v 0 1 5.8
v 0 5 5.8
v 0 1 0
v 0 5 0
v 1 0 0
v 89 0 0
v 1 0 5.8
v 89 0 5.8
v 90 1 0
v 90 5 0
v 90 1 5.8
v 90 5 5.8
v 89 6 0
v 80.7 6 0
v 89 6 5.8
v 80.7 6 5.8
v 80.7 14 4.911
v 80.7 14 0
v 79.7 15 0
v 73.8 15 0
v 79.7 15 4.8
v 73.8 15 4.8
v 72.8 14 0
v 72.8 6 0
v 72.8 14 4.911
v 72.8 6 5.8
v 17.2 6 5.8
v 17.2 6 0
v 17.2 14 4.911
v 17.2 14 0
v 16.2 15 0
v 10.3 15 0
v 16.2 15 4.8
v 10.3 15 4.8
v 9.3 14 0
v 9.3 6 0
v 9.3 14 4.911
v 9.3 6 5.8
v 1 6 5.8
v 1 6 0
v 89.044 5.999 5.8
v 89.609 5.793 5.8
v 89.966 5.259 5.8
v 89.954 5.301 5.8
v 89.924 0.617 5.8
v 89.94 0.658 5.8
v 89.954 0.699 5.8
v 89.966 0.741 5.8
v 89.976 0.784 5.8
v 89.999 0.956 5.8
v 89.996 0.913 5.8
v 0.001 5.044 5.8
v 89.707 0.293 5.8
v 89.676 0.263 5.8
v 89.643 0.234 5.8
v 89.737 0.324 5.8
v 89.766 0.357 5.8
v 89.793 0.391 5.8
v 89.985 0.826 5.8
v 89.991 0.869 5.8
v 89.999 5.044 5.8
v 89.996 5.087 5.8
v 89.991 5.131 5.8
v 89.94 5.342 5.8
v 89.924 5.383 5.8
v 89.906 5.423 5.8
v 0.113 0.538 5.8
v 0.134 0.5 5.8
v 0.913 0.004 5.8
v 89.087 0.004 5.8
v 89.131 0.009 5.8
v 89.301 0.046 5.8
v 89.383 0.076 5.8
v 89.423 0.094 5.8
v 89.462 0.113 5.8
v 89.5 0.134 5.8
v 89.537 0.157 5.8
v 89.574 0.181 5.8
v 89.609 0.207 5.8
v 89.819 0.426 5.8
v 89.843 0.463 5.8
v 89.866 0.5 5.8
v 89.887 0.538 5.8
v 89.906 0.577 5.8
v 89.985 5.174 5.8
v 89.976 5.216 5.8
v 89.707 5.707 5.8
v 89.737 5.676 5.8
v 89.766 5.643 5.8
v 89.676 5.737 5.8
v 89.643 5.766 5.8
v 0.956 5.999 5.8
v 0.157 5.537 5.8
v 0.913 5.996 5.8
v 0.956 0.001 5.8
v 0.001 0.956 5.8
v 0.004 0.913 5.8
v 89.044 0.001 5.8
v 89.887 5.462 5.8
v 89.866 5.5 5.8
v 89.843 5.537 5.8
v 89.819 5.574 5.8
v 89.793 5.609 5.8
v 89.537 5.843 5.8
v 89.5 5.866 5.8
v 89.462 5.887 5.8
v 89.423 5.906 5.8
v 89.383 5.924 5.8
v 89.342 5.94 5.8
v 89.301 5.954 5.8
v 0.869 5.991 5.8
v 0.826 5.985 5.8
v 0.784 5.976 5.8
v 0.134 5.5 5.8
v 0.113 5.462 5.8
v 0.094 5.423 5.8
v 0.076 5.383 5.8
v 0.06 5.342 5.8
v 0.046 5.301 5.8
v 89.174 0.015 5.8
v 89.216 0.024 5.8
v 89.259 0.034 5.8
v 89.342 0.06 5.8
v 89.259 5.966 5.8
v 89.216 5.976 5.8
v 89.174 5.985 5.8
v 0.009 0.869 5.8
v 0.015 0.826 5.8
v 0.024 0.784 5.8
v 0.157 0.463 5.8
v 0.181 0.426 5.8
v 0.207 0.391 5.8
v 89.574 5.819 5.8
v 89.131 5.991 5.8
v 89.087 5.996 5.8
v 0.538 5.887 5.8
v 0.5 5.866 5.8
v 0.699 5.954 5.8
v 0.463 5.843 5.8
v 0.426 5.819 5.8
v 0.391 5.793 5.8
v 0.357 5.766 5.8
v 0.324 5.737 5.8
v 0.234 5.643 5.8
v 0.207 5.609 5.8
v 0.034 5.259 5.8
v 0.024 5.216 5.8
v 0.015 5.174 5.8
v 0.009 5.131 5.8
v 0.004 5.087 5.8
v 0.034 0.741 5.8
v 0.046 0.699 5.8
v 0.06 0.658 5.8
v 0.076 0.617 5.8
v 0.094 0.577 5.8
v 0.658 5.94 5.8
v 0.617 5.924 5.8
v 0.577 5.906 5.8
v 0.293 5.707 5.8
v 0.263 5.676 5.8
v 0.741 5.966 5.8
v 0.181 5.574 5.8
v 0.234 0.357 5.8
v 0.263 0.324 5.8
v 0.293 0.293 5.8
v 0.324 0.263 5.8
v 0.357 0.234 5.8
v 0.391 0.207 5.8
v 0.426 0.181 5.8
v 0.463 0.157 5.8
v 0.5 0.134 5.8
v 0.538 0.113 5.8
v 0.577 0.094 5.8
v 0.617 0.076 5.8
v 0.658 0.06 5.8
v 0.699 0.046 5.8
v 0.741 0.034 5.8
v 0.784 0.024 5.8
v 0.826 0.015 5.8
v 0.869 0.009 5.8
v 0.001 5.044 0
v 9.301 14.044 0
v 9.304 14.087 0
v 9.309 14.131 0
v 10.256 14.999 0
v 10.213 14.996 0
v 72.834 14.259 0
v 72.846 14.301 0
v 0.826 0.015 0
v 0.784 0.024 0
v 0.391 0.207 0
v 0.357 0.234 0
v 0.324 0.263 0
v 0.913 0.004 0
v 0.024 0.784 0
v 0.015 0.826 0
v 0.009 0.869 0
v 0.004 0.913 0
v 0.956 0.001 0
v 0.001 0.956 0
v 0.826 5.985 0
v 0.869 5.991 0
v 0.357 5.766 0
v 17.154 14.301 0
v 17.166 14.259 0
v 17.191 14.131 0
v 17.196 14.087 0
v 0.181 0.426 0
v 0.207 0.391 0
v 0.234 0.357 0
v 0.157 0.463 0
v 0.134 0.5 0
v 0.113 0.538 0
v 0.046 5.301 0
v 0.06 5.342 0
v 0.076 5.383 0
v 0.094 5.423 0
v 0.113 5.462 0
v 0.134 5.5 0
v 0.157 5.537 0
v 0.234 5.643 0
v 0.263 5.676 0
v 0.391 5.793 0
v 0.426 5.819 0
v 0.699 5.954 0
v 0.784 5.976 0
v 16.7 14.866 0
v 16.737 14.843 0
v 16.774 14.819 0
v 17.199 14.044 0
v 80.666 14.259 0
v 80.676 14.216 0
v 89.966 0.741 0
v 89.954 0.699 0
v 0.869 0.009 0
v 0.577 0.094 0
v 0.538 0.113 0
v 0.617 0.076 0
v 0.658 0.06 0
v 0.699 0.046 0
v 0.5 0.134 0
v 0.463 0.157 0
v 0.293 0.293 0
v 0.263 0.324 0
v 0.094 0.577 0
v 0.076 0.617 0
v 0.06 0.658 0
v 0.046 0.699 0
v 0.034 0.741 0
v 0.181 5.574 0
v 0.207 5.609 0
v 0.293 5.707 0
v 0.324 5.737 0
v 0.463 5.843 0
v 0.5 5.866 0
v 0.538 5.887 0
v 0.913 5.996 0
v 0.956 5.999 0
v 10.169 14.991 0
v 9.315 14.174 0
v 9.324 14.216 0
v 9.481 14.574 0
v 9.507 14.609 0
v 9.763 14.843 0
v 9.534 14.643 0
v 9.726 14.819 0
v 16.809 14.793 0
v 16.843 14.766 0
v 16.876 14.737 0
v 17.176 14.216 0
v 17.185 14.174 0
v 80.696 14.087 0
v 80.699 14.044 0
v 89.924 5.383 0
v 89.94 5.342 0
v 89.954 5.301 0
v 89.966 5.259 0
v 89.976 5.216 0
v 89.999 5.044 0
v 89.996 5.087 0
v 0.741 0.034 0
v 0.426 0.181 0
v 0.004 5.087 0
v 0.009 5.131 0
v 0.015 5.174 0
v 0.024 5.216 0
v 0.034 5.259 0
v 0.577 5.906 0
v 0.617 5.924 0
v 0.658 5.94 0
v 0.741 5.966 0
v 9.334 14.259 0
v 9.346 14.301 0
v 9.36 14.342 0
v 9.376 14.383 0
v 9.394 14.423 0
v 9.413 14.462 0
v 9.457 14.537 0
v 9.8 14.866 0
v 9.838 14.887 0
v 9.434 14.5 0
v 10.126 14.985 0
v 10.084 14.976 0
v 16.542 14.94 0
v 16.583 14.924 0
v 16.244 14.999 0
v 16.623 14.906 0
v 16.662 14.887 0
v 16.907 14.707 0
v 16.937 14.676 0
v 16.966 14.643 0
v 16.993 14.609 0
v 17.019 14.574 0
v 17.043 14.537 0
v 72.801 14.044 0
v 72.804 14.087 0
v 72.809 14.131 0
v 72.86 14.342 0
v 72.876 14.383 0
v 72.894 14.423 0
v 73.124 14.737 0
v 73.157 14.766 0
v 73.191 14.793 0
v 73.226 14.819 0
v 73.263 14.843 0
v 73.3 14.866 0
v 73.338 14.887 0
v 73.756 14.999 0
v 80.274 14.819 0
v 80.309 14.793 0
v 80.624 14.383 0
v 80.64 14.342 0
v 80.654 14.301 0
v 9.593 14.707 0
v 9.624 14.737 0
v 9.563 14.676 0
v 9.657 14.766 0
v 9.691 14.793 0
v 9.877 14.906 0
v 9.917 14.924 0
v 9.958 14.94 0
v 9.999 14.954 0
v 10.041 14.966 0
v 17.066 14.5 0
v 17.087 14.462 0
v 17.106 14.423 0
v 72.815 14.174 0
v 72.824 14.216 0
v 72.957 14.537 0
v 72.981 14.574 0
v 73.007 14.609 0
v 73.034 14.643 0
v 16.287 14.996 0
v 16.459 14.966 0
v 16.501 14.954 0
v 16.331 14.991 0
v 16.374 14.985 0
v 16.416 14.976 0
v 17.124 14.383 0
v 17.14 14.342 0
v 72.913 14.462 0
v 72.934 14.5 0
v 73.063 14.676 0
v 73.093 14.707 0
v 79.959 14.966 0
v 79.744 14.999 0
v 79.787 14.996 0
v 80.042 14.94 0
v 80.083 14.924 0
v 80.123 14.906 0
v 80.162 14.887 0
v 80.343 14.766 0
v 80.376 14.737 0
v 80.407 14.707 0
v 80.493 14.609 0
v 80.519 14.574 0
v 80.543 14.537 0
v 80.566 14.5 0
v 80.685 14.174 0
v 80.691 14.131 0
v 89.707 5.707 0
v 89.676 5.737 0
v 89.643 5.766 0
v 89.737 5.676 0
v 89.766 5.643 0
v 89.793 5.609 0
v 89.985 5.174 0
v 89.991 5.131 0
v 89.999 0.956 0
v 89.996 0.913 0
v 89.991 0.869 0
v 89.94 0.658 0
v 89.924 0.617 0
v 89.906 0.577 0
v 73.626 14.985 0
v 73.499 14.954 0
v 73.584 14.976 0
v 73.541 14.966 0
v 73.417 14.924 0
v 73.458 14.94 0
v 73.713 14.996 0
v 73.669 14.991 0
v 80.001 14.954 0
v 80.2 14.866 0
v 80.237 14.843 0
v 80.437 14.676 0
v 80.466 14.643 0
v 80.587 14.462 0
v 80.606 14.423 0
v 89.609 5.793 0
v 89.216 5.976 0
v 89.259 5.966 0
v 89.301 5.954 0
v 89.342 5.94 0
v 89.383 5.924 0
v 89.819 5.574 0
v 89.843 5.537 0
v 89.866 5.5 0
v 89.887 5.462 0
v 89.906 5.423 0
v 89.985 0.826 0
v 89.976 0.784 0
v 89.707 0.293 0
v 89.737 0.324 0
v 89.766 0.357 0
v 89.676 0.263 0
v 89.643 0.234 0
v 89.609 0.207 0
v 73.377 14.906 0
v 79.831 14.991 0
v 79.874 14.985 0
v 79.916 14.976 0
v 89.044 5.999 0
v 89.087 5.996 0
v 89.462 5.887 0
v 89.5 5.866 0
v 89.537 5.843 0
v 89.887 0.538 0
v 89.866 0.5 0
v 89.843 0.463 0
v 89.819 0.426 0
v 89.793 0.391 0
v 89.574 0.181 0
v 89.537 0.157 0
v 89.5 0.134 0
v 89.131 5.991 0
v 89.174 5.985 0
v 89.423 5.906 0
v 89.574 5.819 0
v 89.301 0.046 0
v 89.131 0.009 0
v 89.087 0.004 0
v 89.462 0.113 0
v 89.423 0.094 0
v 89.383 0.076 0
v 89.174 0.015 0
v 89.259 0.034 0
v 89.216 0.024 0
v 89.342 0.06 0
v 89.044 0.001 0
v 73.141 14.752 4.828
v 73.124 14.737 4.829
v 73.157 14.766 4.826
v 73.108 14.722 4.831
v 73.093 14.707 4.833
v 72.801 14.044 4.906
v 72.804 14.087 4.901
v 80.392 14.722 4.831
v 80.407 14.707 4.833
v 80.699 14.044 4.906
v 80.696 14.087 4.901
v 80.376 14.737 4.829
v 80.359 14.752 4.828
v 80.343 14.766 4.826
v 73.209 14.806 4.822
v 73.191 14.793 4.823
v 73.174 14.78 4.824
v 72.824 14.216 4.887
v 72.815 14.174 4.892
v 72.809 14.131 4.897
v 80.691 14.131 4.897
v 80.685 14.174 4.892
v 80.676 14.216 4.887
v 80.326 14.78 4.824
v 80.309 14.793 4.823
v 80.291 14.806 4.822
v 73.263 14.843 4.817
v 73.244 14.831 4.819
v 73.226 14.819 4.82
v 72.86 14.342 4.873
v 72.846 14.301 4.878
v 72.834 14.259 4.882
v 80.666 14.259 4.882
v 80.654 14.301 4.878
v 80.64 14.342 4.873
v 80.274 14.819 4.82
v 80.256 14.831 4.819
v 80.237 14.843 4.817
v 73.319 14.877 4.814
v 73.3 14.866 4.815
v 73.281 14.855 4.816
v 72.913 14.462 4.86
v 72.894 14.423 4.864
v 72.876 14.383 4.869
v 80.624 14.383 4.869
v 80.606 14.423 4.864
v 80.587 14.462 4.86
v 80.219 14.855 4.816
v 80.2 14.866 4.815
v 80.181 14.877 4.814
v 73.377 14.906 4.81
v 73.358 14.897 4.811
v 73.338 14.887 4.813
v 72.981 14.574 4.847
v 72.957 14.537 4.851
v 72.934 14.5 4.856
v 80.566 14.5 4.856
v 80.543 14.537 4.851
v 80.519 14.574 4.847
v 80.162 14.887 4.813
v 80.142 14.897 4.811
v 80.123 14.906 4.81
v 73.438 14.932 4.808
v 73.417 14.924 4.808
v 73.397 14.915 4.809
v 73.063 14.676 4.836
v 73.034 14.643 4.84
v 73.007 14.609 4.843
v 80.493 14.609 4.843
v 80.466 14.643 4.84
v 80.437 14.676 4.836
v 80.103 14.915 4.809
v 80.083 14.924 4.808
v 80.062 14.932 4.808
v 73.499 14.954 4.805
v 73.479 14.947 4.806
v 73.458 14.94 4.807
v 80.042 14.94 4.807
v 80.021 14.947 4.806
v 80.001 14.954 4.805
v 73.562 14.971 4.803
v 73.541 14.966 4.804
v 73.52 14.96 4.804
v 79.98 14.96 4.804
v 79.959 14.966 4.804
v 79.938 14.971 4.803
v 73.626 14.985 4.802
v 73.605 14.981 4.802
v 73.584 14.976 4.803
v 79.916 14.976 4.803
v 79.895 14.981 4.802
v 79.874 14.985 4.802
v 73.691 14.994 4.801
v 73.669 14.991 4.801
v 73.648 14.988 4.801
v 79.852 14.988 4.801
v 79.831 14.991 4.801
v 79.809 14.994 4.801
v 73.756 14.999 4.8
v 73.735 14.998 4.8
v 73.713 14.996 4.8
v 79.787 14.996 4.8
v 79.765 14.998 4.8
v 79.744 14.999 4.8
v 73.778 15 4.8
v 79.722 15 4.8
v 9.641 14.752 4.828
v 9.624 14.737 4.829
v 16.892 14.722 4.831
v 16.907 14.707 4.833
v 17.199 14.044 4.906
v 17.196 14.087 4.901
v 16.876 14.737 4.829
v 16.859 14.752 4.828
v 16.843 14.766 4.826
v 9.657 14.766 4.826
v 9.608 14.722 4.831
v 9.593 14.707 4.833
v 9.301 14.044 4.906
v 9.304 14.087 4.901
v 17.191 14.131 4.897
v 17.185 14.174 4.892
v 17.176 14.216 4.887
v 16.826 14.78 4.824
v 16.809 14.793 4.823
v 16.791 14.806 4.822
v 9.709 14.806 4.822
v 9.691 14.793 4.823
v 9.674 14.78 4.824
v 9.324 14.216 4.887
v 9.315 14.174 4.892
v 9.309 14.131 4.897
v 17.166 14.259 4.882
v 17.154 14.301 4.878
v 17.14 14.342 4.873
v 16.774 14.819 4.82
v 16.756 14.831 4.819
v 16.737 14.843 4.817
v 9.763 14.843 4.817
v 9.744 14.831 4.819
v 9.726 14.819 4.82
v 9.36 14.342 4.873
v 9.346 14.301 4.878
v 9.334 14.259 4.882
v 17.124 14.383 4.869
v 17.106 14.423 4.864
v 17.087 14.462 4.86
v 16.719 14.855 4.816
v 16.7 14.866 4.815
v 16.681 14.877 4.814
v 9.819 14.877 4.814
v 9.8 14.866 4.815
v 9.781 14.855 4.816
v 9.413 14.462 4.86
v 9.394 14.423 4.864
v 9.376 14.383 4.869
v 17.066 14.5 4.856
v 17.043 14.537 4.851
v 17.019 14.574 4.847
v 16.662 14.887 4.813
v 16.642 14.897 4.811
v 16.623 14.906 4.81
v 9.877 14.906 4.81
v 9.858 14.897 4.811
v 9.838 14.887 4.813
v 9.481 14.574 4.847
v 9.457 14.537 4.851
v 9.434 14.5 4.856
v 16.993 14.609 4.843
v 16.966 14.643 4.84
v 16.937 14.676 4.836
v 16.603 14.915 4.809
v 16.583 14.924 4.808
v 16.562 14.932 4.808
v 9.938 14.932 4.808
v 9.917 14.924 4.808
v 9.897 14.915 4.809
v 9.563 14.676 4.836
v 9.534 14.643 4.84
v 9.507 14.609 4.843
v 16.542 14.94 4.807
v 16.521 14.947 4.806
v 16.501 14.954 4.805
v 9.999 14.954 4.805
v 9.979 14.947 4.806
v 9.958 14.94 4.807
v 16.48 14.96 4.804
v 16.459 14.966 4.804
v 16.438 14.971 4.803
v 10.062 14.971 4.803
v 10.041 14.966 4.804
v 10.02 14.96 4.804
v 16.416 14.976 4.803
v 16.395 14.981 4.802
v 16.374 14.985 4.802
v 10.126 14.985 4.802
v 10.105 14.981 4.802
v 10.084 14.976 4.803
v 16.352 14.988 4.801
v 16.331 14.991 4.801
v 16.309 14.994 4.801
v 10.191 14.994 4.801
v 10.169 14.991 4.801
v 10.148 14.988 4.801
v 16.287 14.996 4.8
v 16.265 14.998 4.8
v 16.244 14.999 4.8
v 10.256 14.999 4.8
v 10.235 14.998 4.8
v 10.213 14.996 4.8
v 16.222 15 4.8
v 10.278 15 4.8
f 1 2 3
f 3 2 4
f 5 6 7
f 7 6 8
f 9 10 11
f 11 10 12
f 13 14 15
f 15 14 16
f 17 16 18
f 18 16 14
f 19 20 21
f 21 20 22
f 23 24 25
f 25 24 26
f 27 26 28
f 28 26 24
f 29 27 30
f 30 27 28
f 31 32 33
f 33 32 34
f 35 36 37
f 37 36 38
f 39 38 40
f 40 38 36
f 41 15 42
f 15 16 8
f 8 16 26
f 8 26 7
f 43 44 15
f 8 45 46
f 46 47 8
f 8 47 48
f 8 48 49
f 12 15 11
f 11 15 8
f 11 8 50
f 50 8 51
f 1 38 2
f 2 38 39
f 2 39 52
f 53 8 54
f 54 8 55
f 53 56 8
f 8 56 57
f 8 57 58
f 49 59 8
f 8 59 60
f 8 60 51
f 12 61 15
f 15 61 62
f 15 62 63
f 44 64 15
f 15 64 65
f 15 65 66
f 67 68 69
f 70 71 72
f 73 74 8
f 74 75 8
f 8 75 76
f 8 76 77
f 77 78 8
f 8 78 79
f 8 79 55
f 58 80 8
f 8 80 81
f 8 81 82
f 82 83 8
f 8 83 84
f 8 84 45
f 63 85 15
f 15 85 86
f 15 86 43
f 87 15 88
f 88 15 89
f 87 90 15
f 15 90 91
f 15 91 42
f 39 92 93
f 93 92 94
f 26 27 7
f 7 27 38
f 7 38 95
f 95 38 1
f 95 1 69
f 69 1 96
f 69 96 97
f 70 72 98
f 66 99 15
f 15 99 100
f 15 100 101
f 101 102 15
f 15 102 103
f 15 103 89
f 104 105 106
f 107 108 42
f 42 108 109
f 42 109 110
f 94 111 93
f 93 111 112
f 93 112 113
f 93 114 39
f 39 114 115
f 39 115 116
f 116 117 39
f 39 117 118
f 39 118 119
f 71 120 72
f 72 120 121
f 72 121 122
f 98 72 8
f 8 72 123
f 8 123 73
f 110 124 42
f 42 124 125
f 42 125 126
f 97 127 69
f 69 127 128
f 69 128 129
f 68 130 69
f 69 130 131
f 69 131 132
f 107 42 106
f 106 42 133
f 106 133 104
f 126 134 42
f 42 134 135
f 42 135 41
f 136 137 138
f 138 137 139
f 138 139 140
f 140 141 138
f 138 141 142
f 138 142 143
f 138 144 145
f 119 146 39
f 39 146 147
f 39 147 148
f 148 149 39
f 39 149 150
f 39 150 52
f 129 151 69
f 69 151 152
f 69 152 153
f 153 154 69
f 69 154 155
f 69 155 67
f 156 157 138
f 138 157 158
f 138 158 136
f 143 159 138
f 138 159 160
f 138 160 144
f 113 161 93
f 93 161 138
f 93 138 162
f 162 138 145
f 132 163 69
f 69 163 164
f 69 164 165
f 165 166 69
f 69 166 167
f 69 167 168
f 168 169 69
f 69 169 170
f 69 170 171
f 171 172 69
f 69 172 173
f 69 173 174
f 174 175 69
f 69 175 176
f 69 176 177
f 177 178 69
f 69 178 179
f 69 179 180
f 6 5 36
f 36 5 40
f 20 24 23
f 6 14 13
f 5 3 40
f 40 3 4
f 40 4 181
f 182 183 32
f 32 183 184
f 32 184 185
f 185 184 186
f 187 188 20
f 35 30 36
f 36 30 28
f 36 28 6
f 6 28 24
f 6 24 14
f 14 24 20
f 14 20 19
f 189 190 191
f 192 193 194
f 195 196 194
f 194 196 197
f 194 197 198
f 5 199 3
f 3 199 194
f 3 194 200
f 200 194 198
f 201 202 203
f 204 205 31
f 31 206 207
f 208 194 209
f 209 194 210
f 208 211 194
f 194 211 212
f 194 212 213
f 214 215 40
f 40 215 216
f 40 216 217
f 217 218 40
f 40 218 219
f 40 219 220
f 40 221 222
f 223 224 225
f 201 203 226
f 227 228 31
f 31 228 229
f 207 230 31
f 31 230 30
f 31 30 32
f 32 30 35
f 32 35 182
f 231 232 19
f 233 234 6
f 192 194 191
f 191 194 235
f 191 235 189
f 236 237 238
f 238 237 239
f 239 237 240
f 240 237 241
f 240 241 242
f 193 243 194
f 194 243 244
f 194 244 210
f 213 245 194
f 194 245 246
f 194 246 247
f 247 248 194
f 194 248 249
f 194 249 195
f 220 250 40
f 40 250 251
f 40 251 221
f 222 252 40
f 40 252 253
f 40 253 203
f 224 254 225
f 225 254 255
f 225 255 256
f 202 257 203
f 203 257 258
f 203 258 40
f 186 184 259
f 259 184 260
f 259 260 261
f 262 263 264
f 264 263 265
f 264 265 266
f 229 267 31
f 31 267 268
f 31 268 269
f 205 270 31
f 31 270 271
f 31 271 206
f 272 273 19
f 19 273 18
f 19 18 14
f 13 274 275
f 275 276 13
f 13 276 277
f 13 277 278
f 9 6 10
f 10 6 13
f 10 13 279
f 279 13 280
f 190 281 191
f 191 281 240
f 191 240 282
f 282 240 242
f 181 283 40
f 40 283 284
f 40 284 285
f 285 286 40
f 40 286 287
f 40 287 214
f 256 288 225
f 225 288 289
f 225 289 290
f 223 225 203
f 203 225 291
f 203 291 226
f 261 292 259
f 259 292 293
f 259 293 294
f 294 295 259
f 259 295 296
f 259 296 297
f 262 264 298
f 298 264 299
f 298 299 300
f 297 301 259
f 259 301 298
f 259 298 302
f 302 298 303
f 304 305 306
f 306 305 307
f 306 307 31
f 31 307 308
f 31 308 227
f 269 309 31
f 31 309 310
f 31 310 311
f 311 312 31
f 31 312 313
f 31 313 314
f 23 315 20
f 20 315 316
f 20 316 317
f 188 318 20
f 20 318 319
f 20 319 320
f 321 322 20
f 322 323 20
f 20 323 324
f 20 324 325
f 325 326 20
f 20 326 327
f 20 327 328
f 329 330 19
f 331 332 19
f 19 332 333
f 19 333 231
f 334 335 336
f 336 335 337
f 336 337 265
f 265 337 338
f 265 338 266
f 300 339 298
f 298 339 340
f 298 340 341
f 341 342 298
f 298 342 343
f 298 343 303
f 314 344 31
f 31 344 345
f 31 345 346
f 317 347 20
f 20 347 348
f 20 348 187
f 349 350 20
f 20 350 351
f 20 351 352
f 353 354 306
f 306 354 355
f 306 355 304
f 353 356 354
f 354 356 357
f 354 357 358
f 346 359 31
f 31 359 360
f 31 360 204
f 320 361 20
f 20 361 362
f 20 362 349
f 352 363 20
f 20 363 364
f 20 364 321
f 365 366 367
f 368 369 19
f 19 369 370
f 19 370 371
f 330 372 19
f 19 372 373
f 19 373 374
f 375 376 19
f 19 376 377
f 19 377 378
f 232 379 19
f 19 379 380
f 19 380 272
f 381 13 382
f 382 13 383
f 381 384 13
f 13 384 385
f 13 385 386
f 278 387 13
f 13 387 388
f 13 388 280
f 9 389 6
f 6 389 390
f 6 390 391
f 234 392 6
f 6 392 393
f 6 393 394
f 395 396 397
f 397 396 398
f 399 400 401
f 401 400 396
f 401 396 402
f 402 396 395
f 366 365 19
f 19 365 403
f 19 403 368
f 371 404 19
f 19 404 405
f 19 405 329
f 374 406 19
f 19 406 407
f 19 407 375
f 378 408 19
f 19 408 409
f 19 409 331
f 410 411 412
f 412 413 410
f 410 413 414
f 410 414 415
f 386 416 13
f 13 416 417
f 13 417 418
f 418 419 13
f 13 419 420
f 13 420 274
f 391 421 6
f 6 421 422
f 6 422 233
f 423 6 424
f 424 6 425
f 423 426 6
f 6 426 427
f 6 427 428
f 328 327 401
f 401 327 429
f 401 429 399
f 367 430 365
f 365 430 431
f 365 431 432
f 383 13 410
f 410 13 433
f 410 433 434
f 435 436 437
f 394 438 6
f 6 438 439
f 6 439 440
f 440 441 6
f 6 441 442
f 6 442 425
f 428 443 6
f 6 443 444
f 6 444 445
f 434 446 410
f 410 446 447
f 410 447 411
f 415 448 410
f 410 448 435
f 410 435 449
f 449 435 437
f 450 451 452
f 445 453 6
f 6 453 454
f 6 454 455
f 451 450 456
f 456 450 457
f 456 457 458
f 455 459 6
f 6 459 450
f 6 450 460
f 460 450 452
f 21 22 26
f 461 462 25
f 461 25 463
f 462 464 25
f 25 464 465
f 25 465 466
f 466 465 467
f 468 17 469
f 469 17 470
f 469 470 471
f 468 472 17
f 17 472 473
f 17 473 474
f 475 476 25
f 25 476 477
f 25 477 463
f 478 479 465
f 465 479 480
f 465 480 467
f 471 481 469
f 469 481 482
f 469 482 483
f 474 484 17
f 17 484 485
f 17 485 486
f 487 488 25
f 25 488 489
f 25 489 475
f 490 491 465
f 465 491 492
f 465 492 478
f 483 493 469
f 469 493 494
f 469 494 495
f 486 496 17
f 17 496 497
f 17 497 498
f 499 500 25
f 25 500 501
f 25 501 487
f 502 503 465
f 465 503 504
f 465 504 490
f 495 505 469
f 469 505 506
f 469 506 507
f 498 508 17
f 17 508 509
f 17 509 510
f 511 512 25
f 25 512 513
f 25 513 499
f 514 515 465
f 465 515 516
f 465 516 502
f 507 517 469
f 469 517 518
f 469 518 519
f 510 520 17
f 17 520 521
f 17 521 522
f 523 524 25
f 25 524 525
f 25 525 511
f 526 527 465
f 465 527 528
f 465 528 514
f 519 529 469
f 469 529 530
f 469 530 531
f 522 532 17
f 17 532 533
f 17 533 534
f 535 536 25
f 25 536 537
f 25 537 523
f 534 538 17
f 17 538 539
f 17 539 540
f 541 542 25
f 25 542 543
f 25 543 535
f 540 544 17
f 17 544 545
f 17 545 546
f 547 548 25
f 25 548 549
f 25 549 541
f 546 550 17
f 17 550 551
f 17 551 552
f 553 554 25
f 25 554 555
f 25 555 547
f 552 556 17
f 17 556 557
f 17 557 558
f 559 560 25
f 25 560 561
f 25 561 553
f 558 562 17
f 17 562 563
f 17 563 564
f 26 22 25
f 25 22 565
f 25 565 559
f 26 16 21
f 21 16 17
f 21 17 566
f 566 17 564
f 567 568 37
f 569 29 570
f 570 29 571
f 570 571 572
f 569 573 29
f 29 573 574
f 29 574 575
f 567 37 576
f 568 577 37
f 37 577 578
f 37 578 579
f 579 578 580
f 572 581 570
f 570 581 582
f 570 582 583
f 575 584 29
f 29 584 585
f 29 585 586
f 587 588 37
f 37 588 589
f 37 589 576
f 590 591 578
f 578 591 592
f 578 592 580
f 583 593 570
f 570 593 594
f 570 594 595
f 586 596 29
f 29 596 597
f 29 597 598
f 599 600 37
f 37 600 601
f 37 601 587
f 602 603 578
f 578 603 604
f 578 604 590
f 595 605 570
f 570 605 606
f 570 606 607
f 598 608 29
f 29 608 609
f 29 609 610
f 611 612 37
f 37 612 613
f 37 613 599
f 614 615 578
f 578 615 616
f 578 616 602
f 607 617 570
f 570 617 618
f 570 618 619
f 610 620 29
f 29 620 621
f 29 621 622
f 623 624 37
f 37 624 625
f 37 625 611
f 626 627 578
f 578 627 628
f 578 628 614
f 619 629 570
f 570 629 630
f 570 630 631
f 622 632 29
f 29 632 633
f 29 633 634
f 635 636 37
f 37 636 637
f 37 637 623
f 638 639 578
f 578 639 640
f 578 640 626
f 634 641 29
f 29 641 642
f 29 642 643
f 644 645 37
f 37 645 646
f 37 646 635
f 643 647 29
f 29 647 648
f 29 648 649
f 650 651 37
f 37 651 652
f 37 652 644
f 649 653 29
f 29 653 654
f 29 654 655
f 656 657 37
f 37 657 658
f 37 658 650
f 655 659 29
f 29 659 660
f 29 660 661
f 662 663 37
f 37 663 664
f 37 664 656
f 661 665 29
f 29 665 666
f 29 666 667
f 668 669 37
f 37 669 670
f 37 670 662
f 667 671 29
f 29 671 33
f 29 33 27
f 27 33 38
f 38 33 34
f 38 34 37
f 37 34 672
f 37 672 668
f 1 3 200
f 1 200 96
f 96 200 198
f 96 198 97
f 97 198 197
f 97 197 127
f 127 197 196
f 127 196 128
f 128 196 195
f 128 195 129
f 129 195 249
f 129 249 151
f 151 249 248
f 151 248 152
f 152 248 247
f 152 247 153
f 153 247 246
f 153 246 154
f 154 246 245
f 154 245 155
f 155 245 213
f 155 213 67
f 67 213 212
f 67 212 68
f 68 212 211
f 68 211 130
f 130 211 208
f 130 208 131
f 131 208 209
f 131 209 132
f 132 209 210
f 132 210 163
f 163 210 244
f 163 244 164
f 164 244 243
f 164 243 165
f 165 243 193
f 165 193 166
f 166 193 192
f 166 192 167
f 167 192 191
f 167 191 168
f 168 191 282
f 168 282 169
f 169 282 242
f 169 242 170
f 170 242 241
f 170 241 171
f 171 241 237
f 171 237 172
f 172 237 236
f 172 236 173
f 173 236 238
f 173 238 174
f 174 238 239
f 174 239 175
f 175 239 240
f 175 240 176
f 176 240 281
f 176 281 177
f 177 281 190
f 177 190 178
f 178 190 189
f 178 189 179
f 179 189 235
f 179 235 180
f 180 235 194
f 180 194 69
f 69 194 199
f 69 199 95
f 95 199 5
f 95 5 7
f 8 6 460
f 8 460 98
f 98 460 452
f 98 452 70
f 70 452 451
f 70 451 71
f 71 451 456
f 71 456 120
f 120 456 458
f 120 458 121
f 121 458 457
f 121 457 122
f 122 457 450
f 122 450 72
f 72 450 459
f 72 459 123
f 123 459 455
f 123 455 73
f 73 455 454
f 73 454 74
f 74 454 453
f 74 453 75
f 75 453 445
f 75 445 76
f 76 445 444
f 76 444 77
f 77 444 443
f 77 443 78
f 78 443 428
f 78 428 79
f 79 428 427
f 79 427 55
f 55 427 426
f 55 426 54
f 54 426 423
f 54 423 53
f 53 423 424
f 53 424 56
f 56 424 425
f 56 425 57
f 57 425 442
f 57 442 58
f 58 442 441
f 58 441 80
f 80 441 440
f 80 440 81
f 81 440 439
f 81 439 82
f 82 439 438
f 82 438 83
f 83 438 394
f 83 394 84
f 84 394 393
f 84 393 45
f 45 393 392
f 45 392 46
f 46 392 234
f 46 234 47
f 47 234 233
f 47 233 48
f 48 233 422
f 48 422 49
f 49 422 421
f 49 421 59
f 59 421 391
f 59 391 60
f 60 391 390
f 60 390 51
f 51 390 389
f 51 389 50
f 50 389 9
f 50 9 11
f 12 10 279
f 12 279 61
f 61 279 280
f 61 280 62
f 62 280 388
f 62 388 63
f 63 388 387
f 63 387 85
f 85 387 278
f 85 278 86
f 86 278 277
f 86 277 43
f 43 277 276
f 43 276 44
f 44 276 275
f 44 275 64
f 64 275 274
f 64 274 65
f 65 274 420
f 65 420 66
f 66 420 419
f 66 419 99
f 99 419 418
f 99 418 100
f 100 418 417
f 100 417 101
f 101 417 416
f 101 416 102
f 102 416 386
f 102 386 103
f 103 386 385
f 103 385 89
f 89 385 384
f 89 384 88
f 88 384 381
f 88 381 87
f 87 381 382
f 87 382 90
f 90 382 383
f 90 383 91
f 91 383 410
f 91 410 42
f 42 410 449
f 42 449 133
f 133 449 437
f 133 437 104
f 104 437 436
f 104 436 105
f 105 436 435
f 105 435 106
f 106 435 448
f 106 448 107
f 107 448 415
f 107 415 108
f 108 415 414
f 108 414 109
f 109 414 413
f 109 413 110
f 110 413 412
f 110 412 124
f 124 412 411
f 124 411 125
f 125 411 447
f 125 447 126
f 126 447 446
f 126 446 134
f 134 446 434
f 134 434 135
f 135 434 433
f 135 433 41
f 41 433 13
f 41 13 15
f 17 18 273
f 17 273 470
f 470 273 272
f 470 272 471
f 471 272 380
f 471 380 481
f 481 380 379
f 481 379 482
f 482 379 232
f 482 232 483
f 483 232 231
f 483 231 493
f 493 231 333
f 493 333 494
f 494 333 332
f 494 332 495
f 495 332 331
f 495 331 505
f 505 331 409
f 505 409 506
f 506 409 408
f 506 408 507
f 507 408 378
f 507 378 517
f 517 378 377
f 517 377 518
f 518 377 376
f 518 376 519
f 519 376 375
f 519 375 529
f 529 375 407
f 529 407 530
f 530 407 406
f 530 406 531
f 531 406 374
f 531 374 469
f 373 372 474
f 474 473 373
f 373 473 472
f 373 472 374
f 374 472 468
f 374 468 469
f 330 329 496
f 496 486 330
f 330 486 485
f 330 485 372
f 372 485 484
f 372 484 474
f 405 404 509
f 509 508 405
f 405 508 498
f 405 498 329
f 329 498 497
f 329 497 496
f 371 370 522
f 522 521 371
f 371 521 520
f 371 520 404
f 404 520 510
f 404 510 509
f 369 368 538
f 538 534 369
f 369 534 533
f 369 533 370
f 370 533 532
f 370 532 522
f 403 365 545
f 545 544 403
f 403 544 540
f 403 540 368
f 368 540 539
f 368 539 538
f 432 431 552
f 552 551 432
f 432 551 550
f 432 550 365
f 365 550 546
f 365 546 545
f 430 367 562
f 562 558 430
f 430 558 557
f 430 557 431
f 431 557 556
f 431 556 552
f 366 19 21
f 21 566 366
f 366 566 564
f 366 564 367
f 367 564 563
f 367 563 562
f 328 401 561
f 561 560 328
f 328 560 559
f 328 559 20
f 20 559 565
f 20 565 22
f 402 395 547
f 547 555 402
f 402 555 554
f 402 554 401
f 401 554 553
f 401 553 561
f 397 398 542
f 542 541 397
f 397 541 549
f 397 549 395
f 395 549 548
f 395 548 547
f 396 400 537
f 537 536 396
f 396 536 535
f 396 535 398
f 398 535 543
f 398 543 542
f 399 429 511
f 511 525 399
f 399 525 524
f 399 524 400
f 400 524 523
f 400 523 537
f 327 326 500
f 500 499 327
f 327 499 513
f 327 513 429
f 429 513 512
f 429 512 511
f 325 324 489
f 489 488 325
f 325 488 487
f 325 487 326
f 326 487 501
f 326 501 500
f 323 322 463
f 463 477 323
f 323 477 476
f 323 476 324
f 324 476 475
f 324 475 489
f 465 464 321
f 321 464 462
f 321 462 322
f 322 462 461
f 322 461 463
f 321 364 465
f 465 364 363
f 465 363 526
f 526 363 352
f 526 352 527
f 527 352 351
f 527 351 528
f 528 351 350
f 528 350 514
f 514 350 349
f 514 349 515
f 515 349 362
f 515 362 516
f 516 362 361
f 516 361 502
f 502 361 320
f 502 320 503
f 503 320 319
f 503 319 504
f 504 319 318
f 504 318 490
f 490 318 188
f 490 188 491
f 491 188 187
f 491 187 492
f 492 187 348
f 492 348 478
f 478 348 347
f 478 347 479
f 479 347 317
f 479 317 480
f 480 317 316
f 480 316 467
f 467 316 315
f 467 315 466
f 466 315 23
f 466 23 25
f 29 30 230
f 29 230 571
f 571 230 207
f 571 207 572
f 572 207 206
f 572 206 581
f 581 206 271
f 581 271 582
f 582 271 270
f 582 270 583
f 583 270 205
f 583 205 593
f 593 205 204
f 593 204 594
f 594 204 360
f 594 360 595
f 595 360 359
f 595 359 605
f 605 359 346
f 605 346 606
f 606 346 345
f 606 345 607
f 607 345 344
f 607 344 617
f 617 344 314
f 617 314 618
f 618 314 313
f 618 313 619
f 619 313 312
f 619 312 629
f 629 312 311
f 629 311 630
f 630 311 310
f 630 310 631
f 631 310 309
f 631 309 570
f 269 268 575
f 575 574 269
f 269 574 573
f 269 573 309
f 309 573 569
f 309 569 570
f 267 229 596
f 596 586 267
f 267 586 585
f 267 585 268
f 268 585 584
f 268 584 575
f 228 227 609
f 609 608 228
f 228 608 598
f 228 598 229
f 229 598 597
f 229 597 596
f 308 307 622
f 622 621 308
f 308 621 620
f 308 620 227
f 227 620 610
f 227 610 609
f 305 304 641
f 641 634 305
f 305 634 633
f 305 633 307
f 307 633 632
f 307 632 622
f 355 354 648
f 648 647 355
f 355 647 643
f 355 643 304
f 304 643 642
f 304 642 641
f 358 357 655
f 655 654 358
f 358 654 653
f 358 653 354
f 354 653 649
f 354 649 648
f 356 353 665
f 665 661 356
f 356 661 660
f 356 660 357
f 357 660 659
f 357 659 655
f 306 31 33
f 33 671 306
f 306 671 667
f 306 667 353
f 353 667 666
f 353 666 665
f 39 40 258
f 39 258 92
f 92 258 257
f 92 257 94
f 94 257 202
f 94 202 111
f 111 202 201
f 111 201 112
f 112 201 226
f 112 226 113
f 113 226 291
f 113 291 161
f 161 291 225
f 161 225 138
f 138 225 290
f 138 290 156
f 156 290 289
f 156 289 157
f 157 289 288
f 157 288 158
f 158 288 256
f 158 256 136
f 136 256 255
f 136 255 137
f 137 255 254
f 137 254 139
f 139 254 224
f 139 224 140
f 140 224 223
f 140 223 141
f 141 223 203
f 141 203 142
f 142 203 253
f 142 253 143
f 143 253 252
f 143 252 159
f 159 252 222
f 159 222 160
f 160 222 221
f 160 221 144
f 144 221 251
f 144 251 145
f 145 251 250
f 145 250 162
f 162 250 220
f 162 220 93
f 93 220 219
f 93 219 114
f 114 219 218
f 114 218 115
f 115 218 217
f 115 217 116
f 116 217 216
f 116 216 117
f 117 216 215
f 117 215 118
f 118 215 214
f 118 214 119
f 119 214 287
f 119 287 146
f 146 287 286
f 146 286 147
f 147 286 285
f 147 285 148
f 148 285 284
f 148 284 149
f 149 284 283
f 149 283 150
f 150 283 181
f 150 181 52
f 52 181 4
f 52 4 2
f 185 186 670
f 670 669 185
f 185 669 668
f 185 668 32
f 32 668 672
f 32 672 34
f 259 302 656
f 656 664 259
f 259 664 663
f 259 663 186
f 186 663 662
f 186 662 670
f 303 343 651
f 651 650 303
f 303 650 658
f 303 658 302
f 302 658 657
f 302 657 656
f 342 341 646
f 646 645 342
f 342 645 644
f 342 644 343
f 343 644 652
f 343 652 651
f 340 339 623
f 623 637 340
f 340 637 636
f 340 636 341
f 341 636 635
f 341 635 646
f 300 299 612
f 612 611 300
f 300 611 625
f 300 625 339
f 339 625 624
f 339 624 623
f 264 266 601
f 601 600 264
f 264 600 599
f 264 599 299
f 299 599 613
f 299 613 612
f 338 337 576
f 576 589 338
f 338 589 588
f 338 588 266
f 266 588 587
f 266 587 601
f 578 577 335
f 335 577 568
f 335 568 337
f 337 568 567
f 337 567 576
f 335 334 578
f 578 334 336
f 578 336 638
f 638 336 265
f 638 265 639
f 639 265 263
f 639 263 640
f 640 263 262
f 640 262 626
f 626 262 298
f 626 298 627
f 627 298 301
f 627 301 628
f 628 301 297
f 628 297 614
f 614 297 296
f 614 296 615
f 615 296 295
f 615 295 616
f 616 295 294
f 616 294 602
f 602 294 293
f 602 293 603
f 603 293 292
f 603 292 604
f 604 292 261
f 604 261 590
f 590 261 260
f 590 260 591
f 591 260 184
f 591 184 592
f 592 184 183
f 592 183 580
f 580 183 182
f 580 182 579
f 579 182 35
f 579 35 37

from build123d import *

# Parameters (mm, degrees)
BOSS_EXTRUDE1_DEPTH = 5.8
CUT_EXTRUDE1_DEPTH  = 83.286876232
FILLET1_R           = 1


with BuildPart() as part:
    # Sketch1 → Boss-Extrude1 (new body)
    with BuildSketch(Plane.XY):
        Polygon((0, 0), (90, 0), (90, 6), (80.7, 6), (80.7, 15), (72.8, 15), (72.8, 6), (17.2, 6), (17.2, 15), (9.3, 15), (9.3, 6), (0, 6), align=None)
    extrude(amount=BOSS_EXTRUDE1_DEPTH)

    # Sketch2 → Cut-Extrude1 (cut, through all)
    with BuildSketch(Plane(origin=(80.7, 0, 0), x_dir=(0, 0, -1), z_dir=(1, 0, 0))):
        Polygon((-5.8, 15), (-5.8, 6), (-4.8, 15), align=None)
    extrude(amount=-CUT_EXTRUDE1_DEPTH, mode=Mode.SUBTRACT)

    # Fillet1
    fillet1_edges = [part.edges().sort_by_distance(p)[0] for p in [
        (0, 6, 2.9),
        (90, 6, 2.9),
        (90, 0, 2.9),
        (0, 0, 2.9),
        (9.3, 15, 2.4),
        (17.2, 15, 2.4),
        (72.8, 15, 2.4),
        (80.7, 15, 2.4),
    ]]
    fillet(fillet1_edges, radius=FILLET1_R)


solid = part.part
